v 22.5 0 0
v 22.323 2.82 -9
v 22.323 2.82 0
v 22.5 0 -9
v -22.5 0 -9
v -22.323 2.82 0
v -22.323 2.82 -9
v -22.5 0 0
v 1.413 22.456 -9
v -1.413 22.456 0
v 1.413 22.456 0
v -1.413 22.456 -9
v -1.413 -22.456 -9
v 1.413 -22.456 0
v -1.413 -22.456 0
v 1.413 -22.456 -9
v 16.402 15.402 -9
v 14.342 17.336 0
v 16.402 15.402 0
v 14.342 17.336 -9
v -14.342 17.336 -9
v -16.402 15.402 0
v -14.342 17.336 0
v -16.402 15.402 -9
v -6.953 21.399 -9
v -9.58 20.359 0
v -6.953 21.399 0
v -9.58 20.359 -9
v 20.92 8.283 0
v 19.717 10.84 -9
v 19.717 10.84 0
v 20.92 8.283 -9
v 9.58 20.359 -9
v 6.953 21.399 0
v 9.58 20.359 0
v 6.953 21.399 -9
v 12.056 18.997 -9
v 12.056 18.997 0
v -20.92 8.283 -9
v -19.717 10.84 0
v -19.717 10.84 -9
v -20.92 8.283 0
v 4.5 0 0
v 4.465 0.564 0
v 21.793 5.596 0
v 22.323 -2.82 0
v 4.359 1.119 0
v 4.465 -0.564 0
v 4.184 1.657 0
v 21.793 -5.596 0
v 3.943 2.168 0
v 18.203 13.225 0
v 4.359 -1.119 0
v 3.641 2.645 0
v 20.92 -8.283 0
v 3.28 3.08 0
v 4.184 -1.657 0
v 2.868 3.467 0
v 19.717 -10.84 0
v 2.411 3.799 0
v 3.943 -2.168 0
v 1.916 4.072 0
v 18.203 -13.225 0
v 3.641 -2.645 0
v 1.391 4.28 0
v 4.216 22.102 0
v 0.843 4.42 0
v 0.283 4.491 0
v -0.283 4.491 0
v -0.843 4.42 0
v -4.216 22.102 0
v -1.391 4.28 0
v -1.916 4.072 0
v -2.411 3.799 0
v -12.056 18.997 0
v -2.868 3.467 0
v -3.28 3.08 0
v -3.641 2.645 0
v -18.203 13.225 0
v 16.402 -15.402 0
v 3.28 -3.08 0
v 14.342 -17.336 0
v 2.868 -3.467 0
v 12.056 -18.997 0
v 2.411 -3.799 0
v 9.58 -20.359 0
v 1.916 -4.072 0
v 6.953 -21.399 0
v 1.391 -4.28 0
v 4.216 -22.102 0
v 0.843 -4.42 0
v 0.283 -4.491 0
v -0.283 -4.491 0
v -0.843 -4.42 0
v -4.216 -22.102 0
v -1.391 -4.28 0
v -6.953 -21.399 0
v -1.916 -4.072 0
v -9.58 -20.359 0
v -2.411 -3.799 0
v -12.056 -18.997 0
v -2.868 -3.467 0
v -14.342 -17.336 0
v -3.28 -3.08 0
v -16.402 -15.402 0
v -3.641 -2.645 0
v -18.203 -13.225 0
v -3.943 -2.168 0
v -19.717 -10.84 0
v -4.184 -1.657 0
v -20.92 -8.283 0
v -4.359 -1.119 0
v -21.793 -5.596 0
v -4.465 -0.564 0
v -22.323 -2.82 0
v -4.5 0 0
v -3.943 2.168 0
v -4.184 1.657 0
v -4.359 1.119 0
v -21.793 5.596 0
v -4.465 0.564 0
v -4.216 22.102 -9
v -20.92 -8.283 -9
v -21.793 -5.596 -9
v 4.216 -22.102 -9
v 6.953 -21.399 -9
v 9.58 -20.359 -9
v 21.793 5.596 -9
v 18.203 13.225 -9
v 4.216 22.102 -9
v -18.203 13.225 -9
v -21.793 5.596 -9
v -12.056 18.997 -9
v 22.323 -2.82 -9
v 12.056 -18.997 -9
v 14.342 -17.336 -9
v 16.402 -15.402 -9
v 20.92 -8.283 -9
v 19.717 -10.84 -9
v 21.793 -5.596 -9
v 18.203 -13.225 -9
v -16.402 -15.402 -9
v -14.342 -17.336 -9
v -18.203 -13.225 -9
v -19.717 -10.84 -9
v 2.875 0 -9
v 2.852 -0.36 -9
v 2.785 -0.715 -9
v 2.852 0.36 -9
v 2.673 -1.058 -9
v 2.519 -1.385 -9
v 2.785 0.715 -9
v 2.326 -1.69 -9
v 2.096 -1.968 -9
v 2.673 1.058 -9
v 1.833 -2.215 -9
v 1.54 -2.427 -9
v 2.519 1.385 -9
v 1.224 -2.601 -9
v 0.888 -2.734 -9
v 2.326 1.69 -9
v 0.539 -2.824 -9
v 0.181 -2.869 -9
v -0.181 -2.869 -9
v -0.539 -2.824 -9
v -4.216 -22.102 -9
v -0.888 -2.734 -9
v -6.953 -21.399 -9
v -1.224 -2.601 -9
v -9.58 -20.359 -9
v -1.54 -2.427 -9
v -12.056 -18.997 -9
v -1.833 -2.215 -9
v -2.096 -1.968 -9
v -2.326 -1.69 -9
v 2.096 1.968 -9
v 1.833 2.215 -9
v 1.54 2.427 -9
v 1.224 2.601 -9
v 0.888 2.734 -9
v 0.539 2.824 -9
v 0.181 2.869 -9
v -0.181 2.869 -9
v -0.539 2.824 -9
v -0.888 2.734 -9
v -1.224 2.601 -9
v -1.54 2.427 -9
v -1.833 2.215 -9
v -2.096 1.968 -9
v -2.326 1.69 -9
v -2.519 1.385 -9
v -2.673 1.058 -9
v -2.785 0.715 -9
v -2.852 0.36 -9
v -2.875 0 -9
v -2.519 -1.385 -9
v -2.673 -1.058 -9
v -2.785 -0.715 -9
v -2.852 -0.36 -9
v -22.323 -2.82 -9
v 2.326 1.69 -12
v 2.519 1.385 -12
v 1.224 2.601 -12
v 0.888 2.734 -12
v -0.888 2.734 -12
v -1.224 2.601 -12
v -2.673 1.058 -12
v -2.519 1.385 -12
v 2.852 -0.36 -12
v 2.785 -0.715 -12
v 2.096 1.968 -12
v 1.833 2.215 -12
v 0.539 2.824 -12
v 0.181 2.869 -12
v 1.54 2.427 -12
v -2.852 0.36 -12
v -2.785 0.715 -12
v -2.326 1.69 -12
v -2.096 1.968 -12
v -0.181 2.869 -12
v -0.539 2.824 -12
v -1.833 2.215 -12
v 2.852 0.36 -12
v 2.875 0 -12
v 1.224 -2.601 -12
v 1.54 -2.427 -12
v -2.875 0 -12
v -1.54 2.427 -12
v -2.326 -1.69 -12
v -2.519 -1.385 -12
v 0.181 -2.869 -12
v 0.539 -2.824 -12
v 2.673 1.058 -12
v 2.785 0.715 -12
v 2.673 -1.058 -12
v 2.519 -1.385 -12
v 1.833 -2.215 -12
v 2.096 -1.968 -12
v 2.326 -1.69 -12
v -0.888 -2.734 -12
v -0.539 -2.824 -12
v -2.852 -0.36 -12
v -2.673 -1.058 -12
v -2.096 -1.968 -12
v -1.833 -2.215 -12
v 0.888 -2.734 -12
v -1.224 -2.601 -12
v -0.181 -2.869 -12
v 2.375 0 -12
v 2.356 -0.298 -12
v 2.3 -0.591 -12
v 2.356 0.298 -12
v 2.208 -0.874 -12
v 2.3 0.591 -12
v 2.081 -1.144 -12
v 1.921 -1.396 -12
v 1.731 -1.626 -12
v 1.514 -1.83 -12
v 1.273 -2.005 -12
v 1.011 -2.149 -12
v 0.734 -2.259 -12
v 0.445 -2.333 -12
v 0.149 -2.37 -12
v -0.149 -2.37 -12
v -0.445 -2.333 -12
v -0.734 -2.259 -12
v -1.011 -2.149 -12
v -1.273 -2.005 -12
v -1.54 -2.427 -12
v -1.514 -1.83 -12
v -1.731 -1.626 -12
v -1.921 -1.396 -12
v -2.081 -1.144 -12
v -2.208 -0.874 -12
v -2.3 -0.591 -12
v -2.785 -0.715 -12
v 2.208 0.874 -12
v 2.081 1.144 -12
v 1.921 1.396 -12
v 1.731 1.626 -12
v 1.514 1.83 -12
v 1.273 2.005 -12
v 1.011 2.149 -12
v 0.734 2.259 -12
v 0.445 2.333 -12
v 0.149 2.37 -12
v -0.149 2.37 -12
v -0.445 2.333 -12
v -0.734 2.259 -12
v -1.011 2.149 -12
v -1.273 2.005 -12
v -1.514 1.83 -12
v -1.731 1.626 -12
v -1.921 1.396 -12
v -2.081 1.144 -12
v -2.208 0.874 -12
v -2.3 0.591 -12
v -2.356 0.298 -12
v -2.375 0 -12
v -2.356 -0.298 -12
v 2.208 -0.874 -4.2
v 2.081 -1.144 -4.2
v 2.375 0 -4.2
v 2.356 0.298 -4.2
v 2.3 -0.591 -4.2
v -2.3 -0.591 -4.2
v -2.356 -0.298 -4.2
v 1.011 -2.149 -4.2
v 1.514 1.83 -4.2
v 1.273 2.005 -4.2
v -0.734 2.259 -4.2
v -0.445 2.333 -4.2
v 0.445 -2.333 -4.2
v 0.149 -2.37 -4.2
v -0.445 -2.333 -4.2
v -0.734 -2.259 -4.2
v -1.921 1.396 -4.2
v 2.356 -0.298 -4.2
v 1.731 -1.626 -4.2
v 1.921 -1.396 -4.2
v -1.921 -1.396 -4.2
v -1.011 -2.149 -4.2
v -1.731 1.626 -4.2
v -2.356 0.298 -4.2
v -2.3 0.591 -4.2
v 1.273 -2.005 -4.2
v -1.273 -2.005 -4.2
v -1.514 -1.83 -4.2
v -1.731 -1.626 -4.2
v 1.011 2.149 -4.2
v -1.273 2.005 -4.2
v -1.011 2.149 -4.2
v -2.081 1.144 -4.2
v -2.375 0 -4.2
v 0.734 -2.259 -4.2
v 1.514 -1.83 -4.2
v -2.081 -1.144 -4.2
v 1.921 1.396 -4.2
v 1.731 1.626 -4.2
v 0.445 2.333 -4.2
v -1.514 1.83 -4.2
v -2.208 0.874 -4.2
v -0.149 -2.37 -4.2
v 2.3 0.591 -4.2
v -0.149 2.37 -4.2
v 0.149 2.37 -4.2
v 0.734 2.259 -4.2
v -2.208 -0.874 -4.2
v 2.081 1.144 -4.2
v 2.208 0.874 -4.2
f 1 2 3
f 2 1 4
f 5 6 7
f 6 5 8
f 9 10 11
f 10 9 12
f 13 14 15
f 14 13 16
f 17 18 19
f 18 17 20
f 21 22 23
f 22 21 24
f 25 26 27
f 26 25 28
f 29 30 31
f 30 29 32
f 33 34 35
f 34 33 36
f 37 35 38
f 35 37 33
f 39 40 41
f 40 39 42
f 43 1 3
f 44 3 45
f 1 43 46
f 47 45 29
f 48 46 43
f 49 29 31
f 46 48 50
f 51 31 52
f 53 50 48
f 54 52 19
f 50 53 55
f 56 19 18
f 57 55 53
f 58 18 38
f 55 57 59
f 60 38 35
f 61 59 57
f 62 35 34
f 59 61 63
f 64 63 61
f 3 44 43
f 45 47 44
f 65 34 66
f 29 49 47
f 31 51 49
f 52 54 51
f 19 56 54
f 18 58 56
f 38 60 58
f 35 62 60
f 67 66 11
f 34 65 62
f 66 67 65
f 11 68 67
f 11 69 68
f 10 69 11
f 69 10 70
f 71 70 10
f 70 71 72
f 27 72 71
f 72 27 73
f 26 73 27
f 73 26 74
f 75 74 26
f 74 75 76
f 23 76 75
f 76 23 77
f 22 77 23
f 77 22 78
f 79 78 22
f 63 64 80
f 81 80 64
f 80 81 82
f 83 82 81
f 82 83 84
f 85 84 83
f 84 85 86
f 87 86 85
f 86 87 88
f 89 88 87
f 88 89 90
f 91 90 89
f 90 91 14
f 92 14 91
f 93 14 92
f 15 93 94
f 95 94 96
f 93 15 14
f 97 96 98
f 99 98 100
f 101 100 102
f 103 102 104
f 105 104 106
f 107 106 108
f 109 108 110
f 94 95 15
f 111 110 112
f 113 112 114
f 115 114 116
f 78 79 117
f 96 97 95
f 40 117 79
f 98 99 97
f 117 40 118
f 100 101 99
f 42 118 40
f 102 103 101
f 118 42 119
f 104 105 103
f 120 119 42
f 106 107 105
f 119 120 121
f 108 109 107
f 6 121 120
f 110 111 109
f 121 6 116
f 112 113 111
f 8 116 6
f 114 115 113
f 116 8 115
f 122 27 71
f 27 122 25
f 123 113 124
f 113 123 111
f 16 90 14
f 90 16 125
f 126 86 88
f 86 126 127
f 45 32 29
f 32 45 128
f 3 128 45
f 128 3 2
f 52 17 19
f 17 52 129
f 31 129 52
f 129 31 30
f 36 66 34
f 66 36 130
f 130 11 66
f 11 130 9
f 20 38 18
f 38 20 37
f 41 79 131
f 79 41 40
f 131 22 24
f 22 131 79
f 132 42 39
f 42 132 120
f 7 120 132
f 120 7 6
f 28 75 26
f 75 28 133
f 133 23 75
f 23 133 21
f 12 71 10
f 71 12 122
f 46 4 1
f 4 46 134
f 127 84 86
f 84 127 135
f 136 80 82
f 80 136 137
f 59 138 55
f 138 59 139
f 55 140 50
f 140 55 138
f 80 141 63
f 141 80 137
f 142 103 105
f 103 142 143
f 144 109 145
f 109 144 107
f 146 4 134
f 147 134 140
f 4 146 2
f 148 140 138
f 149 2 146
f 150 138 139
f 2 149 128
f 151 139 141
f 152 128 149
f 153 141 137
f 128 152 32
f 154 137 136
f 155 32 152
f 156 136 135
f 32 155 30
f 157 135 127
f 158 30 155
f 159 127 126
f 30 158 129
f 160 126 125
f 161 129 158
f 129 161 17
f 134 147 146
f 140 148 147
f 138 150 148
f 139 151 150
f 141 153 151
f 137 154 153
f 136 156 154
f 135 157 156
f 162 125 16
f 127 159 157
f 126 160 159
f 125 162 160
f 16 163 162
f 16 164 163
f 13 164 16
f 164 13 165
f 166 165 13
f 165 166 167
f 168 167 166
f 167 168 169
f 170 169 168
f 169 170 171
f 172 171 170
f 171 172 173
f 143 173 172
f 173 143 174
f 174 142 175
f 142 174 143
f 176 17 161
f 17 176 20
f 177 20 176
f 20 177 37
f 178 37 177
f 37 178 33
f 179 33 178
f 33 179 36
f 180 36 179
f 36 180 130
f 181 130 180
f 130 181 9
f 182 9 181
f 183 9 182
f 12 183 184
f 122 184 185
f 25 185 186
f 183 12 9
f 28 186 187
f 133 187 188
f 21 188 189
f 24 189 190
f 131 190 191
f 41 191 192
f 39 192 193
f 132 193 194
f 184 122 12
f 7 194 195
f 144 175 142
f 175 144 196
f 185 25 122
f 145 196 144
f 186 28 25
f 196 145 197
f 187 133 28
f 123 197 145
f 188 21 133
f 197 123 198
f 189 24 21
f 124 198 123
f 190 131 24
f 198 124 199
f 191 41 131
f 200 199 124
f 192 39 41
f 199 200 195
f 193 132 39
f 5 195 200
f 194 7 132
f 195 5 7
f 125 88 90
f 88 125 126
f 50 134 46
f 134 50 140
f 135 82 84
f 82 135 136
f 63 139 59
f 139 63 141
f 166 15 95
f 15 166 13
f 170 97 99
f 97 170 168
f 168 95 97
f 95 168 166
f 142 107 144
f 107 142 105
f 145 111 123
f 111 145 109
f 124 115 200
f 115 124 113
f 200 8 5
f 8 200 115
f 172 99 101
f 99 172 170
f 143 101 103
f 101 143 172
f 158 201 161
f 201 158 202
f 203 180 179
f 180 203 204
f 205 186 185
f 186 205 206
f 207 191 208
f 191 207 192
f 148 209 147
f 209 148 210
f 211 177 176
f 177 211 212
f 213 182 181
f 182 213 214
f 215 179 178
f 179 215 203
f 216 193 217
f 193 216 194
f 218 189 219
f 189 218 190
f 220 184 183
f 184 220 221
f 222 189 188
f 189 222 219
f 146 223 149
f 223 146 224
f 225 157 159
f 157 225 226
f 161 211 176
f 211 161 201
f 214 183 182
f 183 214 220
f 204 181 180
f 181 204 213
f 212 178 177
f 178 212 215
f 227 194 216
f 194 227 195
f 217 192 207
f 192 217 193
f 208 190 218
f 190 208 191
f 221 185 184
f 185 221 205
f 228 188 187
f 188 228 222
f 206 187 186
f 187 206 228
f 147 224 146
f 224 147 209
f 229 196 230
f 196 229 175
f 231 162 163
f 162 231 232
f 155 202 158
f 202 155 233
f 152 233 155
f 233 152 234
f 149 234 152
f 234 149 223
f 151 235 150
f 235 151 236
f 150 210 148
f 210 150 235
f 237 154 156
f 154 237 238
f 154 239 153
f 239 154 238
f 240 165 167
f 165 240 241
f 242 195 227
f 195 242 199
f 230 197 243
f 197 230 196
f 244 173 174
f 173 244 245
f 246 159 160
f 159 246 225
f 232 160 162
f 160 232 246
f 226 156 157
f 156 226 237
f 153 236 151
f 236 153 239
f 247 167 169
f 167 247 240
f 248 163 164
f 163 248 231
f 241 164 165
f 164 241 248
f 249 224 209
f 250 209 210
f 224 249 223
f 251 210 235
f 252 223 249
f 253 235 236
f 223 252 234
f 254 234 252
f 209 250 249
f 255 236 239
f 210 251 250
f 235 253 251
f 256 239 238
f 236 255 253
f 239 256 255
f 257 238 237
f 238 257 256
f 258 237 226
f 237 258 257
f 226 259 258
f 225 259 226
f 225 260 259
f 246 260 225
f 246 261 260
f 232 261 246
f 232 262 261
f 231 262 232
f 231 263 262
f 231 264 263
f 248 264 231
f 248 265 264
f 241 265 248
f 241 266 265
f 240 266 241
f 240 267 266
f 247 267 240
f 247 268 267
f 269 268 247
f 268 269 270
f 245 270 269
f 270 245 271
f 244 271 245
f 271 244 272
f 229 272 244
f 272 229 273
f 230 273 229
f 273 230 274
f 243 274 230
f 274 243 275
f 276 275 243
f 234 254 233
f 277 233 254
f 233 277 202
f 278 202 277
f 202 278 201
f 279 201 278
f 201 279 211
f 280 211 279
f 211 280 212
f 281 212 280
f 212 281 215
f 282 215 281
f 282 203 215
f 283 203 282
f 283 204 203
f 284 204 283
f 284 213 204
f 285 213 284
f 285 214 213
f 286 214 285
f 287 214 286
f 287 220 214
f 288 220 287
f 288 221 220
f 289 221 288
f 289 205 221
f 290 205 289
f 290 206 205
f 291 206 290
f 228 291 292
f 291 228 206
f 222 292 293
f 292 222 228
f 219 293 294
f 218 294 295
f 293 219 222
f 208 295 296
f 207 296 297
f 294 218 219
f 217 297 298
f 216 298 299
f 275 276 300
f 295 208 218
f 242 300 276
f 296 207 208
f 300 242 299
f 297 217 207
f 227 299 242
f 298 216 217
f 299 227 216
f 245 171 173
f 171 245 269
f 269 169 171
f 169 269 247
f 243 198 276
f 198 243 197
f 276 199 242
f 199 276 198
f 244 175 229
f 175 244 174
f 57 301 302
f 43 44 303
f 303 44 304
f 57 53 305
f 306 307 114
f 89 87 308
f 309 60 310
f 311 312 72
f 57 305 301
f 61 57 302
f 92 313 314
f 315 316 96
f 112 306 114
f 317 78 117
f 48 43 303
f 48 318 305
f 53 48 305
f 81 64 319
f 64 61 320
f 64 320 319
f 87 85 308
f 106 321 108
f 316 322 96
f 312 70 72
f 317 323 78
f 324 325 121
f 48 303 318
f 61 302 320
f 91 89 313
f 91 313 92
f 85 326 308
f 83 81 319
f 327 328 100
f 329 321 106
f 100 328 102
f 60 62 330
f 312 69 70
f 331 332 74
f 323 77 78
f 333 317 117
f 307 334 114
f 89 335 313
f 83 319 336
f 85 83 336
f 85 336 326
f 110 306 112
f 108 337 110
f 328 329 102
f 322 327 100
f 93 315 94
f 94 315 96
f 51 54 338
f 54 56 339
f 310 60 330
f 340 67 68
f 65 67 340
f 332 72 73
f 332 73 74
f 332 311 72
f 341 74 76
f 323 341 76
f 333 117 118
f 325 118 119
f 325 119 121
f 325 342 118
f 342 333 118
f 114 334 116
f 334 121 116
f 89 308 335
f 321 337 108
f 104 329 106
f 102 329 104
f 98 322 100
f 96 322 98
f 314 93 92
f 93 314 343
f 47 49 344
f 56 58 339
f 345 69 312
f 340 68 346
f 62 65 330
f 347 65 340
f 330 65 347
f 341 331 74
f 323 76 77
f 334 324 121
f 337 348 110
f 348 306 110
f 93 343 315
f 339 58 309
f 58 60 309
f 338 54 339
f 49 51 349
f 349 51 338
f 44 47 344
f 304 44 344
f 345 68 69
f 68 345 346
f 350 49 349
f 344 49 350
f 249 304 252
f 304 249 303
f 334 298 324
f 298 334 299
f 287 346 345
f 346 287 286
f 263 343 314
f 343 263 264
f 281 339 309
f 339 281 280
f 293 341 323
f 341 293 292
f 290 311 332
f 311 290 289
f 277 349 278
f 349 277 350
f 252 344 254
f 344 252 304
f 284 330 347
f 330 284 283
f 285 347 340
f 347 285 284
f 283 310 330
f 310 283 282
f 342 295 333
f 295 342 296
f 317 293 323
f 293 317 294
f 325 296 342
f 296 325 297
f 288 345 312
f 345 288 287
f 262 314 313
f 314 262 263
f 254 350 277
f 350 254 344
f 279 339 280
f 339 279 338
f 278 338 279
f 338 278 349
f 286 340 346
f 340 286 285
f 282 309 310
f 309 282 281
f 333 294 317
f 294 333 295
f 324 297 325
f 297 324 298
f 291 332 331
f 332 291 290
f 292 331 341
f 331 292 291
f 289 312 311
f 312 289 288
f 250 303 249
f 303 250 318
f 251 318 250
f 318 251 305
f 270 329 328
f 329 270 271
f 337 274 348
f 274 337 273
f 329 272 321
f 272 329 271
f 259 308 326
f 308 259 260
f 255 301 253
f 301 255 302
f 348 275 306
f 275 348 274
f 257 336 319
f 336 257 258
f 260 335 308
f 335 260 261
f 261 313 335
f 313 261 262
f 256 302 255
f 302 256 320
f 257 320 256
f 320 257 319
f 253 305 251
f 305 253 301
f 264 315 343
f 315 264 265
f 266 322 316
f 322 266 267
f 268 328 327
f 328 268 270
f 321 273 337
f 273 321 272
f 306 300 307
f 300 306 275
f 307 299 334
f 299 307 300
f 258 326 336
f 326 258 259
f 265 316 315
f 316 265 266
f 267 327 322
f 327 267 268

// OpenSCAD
$fn = 50;

difference() {
	union() {
		translate(v = [0, 0, -9.0]) {
			cylinder(h = 9, r = 22.5);
		}
		#translate(v = [0, 0, -12.0]) {
			cylinder(h = 12, r = 2.875);
		}
	}
	union() {
		translate(v = [0, 0, 0]) {
			rotate(a = [0, 0, 0]) {
				difference() {
					union() {
						translate(v = [0, 0, -12.0]) {
							cylinder(h = 12, r = 2.25);
						}
						translate(v = [0, 0, -4.2]) {
							cylinder(h = 4.2, r1 = 2.375, r2 = 4.5);
						}
						translate(v = [0, 0, -12.0]) {
							cylinder(h = 12, r = 2.375);
						}
						translate(v = [0, 0, -12.0]) {
							cylinder(h = 12, r = 2.25);
						}
					}
					union();
				}
			}
		}
	}
}
